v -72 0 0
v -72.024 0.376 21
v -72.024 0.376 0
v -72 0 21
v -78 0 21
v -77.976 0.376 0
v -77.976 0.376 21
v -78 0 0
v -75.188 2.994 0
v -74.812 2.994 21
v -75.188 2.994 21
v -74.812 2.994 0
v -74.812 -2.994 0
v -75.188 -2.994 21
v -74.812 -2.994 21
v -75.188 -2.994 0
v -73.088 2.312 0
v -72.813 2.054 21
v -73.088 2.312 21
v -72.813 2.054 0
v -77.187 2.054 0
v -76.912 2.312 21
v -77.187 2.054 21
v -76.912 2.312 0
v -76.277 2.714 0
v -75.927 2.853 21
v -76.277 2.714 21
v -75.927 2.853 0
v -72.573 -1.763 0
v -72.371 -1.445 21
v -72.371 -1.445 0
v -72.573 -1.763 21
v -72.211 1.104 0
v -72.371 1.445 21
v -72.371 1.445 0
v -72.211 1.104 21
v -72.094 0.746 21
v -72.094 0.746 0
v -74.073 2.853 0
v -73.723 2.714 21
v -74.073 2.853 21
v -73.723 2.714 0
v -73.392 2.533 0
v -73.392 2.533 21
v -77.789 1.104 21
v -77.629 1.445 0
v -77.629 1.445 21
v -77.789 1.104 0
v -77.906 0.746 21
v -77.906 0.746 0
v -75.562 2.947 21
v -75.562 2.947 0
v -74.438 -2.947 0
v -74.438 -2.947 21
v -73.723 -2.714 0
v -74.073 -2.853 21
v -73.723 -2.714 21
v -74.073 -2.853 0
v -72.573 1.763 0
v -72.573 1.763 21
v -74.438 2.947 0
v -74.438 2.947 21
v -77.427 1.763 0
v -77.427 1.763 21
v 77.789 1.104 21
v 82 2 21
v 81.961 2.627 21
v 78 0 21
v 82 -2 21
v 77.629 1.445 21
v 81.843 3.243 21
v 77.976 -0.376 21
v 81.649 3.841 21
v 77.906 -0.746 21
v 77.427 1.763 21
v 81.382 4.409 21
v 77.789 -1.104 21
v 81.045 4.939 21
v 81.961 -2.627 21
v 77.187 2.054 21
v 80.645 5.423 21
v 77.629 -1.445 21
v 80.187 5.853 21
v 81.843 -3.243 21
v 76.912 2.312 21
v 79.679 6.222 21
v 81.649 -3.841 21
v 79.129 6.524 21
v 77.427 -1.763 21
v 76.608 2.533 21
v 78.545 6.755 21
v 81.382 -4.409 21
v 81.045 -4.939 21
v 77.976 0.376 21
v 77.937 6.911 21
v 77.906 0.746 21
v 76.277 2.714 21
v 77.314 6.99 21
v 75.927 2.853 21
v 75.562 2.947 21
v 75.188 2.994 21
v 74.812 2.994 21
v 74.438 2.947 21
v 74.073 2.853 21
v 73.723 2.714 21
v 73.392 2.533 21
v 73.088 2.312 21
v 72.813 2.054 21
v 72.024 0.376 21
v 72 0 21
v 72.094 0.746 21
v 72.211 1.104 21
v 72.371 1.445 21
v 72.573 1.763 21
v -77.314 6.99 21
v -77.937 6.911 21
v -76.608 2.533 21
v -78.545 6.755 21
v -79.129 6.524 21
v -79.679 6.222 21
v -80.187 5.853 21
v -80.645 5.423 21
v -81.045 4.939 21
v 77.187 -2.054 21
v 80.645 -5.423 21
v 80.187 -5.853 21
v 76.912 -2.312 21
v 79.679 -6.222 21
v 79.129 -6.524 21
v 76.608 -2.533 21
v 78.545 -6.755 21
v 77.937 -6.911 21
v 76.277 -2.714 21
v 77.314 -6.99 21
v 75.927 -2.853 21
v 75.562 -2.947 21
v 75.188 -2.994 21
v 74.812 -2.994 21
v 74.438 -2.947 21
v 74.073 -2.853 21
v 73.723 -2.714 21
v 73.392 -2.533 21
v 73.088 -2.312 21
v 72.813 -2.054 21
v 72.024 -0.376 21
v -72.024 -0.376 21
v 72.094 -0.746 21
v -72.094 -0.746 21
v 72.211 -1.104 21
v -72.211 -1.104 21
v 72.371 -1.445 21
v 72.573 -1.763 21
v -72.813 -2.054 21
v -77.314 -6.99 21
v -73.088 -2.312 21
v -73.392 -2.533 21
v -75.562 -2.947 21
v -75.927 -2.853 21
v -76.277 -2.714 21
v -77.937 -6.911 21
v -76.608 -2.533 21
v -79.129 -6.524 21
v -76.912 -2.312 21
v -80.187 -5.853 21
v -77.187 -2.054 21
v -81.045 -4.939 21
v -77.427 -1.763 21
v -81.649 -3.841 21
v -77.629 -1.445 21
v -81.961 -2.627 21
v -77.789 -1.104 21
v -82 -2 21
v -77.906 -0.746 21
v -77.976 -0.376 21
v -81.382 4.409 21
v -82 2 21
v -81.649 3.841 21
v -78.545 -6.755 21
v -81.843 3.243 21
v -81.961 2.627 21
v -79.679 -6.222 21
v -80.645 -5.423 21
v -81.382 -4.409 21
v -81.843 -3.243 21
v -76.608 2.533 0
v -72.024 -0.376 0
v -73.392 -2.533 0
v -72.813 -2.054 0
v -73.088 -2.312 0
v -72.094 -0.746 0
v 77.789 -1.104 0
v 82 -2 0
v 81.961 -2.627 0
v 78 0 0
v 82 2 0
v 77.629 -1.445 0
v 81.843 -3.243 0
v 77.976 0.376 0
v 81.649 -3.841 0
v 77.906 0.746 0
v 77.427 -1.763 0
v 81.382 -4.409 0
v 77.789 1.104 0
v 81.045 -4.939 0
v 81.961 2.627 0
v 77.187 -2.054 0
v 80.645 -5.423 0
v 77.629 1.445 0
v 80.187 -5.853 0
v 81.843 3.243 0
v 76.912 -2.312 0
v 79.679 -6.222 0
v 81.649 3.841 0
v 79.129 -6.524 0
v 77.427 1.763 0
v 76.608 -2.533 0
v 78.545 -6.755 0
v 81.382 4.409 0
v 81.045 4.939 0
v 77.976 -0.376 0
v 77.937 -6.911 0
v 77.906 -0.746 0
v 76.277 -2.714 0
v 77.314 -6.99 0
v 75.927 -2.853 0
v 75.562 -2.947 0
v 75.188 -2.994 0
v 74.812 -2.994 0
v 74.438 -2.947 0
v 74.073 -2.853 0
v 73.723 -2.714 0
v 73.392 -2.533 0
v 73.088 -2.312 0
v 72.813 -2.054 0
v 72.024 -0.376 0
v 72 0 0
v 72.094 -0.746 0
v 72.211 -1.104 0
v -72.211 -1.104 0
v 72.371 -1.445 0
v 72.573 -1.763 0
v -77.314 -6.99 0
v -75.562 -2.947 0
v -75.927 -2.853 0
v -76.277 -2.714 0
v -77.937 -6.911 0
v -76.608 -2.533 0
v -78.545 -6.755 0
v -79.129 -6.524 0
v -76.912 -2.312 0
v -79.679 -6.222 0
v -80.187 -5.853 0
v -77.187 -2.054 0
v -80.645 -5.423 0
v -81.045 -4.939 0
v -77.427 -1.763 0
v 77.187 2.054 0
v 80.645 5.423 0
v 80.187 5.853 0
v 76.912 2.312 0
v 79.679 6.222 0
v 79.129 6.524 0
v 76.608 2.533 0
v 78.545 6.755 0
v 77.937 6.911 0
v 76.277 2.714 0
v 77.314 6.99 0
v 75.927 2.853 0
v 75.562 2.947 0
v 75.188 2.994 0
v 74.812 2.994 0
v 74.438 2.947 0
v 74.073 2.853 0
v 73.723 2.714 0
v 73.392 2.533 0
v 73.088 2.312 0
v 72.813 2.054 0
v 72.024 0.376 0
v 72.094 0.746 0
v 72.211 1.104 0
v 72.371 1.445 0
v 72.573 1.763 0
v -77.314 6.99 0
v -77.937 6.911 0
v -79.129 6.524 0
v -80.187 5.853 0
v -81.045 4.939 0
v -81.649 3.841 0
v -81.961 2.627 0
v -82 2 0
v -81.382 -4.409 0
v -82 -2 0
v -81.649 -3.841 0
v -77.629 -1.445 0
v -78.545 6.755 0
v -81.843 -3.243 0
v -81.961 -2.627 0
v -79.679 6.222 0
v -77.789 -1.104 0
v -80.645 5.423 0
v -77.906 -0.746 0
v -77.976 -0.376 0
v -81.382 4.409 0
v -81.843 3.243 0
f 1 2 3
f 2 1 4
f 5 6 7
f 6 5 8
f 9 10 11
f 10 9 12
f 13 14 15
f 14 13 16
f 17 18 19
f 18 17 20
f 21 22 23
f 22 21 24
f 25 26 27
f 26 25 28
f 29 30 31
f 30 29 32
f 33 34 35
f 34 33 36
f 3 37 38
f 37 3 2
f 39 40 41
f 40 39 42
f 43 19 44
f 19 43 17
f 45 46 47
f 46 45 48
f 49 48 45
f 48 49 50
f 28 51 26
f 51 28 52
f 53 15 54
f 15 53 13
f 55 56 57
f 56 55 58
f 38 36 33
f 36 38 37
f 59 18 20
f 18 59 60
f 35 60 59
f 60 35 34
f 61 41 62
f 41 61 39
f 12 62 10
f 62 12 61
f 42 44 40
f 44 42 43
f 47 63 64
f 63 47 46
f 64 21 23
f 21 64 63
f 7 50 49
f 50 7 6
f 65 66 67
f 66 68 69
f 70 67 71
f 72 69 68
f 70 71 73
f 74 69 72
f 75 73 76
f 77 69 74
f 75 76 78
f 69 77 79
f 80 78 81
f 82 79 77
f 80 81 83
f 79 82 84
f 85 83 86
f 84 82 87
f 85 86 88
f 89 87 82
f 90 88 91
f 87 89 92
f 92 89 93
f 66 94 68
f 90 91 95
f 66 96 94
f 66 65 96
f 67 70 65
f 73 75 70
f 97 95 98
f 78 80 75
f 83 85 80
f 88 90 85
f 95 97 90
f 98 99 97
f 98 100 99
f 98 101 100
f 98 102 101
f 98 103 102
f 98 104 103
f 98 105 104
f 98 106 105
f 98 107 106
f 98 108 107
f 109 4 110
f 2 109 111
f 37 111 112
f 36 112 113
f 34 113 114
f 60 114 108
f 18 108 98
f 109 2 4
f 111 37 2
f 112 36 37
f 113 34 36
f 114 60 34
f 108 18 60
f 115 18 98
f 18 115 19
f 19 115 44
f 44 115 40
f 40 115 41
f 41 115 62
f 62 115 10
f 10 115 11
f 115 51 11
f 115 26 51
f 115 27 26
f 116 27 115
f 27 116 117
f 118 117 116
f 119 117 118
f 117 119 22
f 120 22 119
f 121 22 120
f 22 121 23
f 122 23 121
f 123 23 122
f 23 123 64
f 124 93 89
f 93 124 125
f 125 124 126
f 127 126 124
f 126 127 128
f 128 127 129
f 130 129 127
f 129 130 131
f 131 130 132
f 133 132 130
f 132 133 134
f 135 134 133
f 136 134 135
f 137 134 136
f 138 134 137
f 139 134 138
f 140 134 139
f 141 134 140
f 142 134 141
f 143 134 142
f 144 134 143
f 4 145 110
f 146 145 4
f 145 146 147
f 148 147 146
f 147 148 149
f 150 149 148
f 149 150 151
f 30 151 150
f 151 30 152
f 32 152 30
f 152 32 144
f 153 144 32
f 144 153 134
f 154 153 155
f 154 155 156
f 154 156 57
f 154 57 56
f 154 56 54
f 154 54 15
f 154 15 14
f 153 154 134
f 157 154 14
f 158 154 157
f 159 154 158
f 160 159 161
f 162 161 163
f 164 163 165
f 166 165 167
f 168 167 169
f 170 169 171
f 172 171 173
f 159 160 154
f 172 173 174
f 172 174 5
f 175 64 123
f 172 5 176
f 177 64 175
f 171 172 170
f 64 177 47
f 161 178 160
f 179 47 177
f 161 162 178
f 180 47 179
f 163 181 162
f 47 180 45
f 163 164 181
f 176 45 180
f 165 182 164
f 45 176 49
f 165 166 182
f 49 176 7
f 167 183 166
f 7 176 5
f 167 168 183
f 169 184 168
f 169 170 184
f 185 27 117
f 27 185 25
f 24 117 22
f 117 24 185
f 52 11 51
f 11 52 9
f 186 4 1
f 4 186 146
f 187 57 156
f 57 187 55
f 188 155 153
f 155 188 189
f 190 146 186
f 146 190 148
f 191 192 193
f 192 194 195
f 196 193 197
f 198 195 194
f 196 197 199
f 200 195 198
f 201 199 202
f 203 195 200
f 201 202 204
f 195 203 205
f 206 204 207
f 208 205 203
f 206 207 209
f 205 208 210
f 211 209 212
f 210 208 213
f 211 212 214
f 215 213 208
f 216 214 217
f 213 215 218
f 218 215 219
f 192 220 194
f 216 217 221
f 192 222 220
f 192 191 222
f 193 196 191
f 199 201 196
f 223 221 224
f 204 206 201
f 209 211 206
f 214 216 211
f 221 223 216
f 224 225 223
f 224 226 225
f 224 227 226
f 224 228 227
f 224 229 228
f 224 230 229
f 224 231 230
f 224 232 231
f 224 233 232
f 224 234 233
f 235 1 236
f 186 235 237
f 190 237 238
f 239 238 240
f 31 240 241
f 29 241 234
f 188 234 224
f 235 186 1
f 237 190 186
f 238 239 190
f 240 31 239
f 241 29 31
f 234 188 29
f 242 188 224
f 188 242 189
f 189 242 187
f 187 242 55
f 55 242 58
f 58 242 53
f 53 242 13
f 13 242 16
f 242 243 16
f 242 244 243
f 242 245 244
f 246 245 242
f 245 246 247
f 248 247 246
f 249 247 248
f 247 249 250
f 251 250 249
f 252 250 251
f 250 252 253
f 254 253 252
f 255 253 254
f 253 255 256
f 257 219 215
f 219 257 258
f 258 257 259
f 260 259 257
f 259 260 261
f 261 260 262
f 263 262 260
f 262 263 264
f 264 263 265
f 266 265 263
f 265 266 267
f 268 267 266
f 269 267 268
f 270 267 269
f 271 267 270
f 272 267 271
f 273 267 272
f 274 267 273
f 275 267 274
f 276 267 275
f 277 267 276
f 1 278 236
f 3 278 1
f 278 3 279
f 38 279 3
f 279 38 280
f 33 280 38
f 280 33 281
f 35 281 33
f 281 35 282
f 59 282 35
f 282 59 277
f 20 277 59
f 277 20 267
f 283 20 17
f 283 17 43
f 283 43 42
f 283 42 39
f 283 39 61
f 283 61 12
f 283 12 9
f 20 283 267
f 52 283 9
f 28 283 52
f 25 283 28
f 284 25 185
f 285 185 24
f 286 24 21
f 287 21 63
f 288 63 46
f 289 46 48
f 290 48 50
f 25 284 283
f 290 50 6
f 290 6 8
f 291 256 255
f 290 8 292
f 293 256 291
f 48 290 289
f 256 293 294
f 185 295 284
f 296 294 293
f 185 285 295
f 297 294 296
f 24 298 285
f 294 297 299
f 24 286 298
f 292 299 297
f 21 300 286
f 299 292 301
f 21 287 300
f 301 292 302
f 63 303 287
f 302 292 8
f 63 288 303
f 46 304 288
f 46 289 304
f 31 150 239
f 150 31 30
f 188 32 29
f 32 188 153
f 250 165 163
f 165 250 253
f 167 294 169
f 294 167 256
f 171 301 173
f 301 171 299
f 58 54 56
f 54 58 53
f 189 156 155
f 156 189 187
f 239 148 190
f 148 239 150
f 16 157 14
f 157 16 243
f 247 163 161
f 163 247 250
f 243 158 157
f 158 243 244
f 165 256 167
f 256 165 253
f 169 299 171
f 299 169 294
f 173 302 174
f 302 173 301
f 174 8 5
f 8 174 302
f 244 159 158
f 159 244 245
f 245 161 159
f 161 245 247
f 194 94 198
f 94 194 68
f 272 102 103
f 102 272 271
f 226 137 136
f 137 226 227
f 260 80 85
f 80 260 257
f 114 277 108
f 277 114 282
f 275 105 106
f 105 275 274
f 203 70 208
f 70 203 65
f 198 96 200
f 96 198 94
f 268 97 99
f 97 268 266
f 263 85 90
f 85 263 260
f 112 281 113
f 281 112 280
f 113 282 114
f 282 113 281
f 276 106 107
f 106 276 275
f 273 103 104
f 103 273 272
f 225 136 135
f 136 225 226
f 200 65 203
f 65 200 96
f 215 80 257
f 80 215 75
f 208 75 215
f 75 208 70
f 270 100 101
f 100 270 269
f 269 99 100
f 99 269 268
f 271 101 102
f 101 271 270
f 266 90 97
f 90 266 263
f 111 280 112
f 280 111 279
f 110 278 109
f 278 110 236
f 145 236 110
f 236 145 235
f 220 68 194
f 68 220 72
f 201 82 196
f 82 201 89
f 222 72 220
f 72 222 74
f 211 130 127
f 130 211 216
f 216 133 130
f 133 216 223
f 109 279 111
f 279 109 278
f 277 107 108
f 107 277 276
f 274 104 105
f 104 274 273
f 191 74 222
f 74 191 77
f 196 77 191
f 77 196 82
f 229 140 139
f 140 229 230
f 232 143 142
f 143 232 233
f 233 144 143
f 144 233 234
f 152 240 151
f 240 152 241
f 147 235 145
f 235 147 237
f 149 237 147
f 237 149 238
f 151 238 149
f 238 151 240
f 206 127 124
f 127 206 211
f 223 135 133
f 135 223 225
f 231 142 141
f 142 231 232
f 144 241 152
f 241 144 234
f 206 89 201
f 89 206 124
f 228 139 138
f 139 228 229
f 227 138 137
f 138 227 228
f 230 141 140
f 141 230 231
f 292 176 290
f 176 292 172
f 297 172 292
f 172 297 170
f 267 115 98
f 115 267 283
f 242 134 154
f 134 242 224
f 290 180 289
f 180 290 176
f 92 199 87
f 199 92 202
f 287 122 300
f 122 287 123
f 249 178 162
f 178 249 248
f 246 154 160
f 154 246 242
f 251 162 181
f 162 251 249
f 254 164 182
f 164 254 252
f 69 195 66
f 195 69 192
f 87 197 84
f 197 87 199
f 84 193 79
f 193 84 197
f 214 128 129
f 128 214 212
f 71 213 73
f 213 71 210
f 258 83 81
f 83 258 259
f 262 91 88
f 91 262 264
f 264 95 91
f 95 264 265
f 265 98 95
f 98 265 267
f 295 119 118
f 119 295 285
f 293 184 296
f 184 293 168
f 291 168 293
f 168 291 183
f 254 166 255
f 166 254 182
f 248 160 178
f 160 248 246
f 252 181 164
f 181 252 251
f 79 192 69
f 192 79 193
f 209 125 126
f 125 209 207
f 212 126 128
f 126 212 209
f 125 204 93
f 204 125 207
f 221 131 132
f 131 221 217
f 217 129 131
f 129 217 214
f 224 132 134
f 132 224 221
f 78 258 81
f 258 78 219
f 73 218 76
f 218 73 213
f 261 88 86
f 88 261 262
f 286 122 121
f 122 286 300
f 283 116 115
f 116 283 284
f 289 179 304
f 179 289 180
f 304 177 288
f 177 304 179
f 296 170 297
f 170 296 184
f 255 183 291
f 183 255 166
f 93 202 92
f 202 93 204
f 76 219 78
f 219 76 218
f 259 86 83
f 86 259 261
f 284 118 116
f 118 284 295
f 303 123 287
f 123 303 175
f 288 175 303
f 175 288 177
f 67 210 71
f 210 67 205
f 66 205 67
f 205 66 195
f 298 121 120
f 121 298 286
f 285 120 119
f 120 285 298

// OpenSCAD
$fn = 50;


difference() {
	union() {
		hull() {
			translate(v = [-77.0000000000, 2.0000000000, 0]) {
				cylinder(h = 21, r = 5);
			}
			translate(v = [77.0000000000, 2.0000000000, 0]) {
				cylinder(h = 21, r = 5);
			}
			translate(v = [-77.0000000000, -2.0000000000, 0]) {
				cylinder(h = 21, r = 5);
			}
			translate(v = [77.0000000000, -2.0000000000, 0]) {
				cylinder(h = 21, r = 5);
			}
		}
	}
	union() {
		translate(v = [-75.0000000000, 0.0000000000, 0]) {
			cylinder(h = 21, r = 3.0000000000);
		}
		translate(v = [75.0000000000, 0.0000000000, 0]) {
			cylinder(h = 21, r = 3.0000000000);
		}
		translate(v = [-75.0000000000, 0.0000000000, 0]) {
			cylinder(h = 21, r = 1.5000000000);
		}
		translate(v = [75.0000000000, 0.0000000000, 0]) {
			cylinder(h = 21, r = 1.5000000000);
		}
		translate(v = [-75.0000000000, 0.0000000000, 0]) {
			cylinder(h = 21, r = 1.5000000000);
		}
		translate(v = [75.0000000000, 0.0000000000, 0]) {
			cylinder(h = 21, r = 1.5000000000);
		}
		translate(v = [-75.0000000000, 0.0000000000, 0]) {
			cylinder(h = 21, r = 1.5000000000);
		}
		translate(v = [75.0000000000, 0.0000000000, 0]) {
			cylinder(h = 21, r = 1.5000000000);
		}
	}
}
